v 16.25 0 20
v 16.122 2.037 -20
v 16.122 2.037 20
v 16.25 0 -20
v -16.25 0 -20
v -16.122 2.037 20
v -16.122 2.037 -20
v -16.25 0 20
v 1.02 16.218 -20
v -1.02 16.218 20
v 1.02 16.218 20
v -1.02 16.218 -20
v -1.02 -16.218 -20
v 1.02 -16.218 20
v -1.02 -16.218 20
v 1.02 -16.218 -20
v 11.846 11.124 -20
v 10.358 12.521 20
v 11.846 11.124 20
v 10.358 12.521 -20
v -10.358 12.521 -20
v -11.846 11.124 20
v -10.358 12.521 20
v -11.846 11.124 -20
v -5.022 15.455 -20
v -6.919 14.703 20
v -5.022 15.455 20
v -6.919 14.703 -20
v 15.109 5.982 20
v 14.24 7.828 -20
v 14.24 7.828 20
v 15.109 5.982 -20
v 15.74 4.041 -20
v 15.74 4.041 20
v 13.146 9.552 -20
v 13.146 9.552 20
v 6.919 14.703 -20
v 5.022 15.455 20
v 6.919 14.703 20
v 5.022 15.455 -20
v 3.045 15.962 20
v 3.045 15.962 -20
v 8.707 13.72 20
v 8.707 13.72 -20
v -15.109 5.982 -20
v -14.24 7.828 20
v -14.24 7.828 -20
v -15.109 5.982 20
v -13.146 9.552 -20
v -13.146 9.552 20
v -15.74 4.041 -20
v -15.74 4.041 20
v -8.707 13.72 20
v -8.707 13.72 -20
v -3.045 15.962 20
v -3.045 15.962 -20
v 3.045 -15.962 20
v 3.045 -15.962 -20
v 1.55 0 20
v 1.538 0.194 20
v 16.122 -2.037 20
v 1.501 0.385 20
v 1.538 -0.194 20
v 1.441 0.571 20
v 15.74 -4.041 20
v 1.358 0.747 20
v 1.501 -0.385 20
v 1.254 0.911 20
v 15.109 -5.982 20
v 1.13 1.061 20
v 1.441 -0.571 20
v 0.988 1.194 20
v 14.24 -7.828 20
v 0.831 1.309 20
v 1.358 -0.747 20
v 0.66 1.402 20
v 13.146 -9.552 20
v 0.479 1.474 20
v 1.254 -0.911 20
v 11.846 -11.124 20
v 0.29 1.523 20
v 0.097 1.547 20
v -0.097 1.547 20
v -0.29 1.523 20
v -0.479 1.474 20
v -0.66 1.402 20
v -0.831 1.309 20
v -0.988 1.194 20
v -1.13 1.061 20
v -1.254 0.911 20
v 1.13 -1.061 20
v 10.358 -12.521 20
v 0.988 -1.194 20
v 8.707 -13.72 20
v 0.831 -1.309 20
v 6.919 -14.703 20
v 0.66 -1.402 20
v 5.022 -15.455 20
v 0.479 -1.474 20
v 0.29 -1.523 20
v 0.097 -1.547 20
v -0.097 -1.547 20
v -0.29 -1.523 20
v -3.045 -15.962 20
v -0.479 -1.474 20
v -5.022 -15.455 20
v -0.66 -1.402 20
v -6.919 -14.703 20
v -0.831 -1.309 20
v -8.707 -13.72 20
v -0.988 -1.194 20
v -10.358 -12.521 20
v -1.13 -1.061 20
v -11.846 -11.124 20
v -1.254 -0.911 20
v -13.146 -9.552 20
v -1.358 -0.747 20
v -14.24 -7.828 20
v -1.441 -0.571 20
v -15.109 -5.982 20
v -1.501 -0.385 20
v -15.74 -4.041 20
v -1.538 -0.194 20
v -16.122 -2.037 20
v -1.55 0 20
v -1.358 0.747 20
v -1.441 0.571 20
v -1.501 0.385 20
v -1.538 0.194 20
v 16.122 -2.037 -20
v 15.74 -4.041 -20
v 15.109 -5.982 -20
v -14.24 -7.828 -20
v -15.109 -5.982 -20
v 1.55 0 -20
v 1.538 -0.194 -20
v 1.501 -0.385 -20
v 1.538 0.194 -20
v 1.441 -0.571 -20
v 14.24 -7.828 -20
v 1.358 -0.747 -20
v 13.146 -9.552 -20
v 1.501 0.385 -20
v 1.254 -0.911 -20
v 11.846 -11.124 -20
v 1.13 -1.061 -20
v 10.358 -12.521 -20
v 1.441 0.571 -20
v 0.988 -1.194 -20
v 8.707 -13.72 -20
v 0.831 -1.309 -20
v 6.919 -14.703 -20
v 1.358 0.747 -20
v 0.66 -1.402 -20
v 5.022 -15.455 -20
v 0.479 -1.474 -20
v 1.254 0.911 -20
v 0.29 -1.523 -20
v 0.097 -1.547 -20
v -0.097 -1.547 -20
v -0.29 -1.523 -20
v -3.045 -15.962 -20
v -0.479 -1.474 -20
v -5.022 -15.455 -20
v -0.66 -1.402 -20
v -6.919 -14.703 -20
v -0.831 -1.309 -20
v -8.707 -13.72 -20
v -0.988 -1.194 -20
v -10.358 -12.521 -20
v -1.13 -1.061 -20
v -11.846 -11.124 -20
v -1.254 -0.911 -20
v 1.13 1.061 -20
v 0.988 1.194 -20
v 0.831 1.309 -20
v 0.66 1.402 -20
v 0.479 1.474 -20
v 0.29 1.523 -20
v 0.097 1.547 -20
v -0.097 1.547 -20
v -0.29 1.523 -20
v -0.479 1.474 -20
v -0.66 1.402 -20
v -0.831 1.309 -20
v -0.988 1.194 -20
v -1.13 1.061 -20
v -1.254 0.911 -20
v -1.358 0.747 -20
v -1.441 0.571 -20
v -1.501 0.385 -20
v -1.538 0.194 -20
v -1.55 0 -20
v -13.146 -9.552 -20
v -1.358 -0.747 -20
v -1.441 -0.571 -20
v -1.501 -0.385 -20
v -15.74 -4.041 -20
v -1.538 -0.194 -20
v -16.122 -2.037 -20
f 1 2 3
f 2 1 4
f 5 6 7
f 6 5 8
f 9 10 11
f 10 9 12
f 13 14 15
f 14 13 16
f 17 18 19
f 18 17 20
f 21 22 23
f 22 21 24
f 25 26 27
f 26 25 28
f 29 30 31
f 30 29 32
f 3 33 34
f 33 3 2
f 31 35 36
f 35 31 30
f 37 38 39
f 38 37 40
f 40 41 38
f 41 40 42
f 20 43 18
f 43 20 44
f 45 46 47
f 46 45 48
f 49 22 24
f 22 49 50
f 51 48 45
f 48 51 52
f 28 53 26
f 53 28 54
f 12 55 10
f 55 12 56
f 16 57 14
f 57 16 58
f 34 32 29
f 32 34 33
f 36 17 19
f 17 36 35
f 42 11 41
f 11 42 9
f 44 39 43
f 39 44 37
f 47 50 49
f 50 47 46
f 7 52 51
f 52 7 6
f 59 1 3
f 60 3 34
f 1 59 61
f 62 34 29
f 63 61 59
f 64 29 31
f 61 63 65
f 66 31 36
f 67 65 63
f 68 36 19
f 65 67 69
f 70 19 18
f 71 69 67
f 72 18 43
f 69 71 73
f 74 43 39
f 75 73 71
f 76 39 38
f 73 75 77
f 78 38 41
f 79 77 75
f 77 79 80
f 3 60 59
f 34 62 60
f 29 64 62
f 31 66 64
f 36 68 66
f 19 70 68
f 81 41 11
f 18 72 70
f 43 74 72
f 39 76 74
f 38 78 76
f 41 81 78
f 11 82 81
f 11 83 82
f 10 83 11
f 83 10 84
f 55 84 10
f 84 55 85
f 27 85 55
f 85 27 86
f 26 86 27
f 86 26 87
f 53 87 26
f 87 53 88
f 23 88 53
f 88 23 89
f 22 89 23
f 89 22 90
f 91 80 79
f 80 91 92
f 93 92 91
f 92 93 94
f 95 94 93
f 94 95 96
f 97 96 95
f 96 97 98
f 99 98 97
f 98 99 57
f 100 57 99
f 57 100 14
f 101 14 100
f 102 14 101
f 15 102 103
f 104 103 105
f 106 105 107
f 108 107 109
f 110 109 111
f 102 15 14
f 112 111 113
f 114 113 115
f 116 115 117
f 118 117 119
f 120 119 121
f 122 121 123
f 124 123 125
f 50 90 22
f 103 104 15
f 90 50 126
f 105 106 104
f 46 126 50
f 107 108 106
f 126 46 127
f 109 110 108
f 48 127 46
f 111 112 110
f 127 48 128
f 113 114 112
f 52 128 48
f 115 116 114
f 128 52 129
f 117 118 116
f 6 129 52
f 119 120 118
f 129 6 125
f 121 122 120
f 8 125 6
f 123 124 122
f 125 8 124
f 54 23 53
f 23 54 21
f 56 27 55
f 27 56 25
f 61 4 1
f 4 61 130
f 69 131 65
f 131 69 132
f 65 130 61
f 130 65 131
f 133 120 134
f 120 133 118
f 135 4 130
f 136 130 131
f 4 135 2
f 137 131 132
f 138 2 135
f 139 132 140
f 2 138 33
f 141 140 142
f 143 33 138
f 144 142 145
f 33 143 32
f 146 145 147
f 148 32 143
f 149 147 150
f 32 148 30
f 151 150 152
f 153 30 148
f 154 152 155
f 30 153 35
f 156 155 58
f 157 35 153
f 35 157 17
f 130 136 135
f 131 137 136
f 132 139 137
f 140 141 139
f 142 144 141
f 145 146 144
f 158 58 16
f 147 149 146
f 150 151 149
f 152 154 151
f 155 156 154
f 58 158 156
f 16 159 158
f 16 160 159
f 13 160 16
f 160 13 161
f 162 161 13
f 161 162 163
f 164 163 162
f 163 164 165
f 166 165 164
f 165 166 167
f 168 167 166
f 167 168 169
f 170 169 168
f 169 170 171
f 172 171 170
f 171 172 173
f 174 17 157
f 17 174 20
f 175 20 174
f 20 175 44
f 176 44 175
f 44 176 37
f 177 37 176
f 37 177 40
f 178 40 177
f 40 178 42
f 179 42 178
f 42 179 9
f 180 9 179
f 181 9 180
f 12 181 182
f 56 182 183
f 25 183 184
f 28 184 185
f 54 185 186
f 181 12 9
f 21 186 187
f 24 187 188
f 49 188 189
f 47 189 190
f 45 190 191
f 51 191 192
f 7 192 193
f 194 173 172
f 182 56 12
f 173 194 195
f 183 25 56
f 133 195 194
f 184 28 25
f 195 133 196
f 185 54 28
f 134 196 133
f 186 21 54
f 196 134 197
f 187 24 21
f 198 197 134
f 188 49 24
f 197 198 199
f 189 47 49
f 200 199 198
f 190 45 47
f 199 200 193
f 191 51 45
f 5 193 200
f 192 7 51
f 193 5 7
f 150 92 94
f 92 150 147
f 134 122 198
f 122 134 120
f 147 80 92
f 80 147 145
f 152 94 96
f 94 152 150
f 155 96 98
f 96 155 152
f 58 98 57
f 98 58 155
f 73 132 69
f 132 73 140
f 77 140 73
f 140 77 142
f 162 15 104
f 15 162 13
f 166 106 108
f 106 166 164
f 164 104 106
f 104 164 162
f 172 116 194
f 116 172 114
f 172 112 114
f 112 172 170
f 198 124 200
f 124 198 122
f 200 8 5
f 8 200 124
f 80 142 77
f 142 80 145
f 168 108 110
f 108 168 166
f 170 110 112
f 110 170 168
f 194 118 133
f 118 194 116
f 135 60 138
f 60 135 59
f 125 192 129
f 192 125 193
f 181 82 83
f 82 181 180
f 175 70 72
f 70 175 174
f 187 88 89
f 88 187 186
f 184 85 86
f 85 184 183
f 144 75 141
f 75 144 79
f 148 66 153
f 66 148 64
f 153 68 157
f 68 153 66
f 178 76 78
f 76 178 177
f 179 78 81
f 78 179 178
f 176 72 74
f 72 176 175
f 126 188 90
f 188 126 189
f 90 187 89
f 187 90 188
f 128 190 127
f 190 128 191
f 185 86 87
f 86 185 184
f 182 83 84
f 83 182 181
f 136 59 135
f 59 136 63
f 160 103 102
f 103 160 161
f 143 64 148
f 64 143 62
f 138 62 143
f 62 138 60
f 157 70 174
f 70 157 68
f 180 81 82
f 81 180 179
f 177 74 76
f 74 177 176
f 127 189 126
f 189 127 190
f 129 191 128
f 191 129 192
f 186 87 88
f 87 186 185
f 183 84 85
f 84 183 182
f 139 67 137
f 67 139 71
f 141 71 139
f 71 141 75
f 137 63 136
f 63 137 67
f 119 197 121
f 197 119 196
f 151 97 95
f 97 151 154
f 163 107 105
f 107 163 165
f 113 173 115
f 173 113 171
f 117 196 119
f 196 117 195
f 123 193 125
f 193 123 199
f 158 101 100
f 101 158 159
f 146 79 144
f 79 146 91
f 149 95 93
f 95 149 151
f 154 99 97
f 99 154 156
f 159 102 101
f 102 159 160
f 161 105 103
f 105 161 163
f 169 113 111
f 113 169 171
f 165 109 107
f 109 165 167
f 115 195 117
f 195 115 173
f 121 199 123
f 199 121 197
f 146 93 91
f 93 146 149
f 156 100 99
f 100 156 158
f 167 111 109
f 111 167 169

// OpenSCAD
$fn = 50;


difference() {
	union() {
		translate(v = [0, 0, -20.0000000000]) {
			cylinder(h = 40, r = 16.2500000000);
		}
	}
	union() {
		translate(v = [0, 0, -100.0000000000]) {
			cylinder(h = 200, r = 1.5500000000);
		}
	}
}
